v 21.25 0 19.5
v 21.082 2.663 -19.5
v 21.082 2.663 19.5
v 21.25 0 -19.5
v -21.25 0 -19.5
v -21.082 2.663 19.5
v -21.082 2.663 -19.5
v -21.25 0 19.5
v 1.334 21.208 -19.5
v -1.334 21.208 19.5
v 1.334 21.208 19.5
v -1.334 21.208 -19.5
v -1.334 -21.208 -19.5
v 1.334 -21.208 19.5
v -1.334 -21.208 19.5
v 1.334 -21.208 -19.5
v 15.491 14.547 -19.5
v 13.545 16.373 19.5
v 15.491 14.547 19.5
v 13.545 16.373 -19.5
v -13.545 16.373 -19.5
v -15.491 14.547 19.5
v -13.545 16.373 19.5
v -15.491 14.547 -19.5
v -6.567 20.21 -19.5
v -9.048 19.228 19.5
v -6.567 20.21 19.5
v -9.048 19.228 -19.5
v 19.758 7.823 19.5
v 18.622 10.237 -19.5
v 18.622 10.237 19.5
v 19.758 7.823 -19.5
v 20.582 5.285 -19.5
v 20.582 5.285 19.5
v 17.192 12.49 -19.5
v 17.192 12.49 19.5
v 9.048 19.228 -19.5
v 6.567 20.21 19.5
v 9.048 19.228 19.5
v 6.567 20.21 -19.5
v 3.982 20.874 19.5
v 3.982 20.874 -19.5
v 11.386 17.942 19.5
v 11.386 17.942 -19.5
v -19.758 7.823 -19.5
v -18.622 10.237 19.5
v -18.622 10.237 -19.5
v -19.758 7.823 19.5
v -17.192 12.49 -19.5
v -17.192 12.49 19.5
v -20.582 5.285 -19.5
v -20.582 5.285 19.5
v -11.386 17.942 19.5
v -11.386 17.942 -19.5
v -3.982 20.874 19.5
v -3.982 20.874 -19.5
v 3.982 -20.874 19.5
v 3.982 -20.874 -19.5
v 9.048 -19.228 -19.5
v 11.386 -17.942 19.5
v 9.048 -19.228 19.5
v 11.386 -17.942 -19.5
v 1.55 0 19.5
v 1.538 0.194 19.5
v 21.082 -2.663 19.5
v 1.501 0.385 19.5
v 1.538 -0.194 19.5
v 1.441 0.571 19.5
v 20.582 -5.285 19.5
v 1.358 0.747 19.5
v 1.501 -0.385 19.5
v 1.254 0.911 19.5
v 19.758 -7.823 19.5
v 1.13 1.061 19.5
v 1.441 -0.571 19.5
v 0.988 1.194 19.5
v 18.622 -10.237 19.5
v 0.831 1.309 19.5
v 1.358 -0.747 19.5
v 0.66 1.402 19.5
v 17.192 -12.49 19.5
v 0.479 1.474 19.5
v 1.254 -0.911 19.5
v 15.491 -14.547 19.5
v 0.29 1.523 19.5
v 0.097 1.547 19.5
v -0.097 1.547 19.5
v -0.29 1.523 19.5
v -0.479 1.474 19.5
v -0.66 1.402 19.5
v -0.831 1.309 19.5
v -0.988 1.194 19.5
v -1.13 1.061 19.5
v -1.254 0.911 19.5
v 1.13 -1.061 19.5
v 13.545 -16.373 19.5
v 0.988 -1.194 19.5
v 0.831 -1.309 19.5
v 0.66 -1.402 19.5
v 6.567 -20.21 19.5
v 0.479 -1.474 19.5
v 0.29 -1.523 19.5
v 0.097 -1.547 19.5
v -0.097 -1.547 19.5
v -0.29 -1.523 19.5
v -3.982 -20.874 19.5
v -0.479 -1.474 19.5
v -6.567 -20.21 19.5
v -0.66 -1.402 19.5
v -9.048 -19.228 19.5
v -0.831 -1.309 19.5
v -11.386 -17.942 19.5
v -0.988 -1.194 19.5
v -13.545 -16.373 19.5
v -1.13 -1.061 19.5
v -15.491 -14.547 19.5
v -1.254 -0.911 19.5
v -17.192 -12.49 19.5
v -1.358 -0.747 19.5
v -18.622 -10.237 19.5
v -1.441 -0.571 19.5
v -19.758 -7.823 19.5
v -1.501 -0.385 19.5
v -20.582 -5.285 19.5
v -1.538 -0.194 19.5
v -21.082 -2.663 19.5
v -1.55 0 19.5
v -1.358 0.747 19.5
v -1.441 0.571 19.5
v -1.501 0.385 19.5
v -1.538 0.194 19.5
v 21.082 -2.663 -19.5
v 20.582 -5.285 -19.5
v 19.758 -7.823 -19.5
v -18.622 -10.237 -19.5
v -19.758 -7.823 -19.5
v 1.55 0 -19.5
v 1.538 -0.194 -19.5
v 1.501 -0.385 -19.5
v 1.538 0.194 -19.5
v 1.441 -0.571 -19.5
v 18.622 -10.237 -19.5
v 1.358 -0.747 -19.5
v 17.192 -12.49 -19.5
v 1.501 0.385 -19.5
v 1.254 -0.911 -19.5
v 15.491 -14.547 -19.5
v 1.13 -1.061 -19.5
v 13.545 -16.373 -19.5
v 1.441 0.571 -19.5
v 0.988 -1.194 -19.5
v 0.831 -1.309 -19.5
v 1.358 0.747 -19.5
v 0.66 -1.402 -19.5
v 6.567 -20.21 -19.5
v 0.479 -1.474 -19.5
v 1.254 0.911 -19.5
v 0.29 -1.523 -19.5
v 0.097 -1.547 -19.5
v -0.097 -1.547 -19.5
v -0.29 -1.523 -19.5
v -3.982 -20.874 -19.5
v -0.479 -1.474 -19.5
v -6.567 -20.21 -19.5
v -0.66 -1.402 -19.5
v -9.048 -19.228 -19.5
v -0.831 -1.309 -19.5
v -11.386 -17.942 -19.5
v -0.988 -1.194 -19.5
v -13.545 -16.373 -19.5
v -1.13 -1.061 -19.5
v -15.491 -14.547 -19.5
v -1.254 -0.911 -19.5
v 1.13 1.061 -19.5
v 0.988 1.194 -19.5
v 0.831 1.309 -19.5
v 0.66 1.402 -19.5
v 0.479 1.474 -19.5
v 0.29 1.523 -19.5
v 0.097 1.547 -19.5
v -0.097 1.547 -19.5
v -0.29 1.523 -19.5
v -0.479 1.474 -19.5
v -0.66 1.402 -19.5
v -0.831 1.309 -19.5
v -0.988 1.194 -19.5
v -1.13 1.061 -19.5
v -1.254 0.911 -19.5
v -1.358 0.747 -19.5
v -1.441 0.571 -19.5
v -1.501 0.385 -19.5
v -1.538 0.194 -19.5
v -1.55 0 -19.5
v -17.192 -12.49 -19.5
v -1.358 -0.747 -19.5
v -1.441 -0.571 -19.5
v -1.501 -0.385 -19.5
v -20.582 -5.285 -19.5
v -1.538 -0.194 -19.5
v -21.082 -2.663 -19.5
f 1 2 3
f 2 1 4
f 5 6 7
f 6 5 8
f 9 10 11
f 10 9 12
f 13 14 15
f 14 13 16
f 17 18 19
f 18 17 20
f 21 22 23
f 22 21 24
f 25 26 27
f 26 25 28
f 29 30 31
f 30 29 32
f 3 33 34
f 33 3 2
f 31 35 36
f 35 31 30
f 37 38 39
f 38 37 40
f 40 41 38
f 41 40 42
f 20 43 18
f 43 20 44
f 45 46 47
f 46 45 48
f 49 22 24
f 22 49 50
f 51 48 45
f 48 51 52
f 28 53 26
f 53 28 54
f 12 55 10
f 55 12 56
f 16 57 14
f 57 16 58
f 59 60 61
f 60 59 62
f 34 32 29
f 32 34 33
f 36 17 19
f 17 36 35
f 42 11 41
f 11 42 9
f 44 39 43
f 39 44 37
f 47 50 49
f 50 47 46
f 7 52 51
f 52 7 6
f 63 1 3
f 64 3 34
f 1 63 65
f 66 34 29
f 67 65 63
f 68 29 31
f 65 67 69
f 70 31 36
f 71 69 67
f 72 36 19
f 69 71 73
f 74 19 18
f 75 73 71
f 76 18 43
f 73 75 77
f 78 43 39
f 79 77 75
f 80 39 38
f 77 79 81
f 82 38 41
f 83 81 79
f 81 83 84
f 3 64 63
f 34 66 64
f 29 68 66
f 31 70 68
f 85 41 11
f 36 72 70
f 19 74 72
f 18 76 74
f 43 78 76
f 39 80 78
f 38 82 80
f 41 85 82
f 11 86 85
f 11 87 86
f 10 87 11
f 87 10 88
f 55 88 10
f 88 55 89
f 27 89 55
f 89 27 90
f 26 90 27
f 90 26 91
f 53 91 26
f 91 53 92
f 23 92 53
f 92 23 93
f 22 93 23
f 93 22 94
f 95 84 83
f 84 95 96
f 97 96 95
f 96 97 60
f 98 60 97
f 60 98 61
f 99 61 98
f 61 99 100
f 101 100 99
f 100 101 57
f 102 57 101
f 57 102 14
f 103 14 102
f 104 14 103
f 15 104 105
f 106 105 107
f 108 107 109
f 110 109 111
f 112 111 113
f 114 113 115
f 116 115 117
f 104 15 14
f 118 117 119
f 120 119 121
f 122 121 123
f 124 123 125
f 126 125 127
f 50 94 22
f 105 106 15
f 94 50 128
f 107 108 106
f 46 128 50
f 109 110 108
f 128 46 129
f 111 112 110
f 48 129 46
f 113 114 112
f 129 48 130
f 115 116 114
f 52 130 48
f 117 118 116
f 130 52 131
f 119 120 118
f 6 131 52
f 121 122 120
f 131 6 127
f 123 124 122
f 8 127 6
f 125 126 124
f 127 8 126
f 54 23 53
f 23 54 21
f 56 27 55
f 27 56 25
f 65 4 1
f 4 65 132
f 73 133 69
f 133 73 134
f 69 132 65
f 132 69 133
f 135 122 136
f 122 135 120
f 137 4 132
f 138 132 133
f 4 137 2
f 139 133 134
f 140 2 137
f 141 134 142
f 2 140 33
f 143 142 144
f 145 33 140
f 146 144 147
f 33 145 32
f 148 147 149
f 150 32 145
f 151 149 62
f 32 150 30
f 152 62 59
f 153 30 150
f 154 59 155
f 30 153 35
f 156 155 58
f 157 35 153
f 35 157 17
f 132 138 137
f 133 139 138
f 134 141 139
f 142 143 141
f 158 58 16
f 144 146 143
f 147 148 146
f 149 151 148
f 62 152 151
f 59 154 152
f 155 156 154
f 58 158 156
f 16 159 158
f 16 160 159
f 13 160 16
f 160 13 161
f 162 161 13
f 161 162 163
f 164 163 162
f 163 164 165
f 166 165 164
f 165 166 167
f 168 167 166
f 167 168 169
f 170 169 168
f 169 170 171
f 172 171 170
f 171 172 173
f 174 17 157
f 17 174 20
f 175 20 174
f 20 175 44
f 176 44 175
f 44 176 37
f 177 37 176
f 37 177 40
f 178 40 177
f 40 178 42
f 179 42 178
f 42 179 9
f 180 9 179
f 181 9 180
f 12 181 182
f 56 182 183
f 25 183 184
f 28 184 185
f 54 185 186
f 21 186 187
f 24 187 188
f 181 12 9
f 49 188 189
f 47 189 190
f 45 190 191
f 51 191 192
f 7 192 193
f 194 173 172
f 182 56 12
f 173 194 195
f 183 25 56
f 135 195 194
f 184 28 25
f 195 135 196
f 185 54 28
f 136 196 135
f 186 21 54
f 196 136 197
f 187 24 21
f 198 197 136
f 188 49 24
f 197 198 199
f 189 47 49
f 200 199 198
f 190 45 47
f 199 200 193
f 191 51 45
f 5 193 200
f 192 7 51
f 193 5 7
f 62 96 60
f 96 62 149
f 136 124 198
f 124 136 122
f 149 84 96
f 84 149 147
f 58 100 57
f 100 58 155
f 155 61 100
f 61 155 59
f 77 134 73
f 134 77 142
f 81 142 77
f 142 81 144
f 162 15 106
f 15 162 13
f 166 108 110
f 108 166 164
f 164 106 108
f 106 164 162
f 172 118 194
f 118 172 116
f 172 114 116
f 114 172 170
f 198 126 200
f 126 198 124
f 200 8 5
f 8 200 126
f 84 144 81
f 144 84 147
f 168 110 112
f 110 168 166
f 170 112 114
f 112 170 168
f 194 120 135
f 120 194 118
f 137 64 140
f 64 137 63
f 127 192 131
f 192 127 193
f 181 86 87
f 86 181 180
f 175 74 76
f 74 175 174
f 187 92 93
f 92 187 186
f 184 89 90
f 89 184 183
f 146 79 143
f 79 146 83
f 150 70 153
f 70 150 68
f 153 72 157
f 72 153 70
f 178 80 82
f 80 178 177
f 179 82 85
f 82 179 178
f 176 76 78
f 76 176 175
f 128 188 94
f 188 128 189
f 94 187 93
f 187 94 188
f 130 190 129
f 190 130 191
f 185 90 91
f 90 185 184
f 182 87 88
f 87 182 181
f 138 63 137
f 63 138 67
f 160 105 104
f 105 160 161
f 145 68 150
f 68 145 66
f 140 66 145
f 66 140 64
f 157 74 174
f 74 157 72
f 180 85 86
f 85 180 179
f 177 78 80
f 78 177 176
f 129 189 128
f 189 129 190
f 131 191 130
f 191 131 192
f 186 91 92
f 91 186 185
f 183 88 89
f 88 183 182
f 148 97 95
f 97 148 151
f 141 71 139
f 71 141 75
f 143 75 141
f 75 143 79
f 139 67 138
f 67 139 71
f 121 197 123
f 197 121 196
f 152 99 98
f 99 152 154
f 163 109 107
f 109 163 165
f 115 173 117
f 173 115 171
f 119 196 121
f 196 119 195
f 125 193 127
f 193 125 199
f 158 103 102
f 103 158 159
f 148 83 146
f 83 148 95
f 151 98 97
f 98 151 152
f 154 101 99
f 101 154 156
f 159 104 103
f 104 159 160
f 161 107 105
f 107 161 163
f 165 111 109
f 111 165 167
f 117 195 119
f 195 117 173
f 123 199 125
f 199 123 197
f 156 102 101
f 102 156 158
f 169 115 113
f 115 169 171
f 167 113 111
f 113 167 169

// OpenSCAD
$fn = 50;


difference() {
	union() {
		translate(v = [0, 0, -19.5000000000]) {
			cylinder(h = 39, r = 21.2500000000);
		}
	}
	union() {
		translate(v = [0, 0, -100.0000000000]) {
			cylinder(h = 200, r = 1.5500000000);
		}
	}
}
